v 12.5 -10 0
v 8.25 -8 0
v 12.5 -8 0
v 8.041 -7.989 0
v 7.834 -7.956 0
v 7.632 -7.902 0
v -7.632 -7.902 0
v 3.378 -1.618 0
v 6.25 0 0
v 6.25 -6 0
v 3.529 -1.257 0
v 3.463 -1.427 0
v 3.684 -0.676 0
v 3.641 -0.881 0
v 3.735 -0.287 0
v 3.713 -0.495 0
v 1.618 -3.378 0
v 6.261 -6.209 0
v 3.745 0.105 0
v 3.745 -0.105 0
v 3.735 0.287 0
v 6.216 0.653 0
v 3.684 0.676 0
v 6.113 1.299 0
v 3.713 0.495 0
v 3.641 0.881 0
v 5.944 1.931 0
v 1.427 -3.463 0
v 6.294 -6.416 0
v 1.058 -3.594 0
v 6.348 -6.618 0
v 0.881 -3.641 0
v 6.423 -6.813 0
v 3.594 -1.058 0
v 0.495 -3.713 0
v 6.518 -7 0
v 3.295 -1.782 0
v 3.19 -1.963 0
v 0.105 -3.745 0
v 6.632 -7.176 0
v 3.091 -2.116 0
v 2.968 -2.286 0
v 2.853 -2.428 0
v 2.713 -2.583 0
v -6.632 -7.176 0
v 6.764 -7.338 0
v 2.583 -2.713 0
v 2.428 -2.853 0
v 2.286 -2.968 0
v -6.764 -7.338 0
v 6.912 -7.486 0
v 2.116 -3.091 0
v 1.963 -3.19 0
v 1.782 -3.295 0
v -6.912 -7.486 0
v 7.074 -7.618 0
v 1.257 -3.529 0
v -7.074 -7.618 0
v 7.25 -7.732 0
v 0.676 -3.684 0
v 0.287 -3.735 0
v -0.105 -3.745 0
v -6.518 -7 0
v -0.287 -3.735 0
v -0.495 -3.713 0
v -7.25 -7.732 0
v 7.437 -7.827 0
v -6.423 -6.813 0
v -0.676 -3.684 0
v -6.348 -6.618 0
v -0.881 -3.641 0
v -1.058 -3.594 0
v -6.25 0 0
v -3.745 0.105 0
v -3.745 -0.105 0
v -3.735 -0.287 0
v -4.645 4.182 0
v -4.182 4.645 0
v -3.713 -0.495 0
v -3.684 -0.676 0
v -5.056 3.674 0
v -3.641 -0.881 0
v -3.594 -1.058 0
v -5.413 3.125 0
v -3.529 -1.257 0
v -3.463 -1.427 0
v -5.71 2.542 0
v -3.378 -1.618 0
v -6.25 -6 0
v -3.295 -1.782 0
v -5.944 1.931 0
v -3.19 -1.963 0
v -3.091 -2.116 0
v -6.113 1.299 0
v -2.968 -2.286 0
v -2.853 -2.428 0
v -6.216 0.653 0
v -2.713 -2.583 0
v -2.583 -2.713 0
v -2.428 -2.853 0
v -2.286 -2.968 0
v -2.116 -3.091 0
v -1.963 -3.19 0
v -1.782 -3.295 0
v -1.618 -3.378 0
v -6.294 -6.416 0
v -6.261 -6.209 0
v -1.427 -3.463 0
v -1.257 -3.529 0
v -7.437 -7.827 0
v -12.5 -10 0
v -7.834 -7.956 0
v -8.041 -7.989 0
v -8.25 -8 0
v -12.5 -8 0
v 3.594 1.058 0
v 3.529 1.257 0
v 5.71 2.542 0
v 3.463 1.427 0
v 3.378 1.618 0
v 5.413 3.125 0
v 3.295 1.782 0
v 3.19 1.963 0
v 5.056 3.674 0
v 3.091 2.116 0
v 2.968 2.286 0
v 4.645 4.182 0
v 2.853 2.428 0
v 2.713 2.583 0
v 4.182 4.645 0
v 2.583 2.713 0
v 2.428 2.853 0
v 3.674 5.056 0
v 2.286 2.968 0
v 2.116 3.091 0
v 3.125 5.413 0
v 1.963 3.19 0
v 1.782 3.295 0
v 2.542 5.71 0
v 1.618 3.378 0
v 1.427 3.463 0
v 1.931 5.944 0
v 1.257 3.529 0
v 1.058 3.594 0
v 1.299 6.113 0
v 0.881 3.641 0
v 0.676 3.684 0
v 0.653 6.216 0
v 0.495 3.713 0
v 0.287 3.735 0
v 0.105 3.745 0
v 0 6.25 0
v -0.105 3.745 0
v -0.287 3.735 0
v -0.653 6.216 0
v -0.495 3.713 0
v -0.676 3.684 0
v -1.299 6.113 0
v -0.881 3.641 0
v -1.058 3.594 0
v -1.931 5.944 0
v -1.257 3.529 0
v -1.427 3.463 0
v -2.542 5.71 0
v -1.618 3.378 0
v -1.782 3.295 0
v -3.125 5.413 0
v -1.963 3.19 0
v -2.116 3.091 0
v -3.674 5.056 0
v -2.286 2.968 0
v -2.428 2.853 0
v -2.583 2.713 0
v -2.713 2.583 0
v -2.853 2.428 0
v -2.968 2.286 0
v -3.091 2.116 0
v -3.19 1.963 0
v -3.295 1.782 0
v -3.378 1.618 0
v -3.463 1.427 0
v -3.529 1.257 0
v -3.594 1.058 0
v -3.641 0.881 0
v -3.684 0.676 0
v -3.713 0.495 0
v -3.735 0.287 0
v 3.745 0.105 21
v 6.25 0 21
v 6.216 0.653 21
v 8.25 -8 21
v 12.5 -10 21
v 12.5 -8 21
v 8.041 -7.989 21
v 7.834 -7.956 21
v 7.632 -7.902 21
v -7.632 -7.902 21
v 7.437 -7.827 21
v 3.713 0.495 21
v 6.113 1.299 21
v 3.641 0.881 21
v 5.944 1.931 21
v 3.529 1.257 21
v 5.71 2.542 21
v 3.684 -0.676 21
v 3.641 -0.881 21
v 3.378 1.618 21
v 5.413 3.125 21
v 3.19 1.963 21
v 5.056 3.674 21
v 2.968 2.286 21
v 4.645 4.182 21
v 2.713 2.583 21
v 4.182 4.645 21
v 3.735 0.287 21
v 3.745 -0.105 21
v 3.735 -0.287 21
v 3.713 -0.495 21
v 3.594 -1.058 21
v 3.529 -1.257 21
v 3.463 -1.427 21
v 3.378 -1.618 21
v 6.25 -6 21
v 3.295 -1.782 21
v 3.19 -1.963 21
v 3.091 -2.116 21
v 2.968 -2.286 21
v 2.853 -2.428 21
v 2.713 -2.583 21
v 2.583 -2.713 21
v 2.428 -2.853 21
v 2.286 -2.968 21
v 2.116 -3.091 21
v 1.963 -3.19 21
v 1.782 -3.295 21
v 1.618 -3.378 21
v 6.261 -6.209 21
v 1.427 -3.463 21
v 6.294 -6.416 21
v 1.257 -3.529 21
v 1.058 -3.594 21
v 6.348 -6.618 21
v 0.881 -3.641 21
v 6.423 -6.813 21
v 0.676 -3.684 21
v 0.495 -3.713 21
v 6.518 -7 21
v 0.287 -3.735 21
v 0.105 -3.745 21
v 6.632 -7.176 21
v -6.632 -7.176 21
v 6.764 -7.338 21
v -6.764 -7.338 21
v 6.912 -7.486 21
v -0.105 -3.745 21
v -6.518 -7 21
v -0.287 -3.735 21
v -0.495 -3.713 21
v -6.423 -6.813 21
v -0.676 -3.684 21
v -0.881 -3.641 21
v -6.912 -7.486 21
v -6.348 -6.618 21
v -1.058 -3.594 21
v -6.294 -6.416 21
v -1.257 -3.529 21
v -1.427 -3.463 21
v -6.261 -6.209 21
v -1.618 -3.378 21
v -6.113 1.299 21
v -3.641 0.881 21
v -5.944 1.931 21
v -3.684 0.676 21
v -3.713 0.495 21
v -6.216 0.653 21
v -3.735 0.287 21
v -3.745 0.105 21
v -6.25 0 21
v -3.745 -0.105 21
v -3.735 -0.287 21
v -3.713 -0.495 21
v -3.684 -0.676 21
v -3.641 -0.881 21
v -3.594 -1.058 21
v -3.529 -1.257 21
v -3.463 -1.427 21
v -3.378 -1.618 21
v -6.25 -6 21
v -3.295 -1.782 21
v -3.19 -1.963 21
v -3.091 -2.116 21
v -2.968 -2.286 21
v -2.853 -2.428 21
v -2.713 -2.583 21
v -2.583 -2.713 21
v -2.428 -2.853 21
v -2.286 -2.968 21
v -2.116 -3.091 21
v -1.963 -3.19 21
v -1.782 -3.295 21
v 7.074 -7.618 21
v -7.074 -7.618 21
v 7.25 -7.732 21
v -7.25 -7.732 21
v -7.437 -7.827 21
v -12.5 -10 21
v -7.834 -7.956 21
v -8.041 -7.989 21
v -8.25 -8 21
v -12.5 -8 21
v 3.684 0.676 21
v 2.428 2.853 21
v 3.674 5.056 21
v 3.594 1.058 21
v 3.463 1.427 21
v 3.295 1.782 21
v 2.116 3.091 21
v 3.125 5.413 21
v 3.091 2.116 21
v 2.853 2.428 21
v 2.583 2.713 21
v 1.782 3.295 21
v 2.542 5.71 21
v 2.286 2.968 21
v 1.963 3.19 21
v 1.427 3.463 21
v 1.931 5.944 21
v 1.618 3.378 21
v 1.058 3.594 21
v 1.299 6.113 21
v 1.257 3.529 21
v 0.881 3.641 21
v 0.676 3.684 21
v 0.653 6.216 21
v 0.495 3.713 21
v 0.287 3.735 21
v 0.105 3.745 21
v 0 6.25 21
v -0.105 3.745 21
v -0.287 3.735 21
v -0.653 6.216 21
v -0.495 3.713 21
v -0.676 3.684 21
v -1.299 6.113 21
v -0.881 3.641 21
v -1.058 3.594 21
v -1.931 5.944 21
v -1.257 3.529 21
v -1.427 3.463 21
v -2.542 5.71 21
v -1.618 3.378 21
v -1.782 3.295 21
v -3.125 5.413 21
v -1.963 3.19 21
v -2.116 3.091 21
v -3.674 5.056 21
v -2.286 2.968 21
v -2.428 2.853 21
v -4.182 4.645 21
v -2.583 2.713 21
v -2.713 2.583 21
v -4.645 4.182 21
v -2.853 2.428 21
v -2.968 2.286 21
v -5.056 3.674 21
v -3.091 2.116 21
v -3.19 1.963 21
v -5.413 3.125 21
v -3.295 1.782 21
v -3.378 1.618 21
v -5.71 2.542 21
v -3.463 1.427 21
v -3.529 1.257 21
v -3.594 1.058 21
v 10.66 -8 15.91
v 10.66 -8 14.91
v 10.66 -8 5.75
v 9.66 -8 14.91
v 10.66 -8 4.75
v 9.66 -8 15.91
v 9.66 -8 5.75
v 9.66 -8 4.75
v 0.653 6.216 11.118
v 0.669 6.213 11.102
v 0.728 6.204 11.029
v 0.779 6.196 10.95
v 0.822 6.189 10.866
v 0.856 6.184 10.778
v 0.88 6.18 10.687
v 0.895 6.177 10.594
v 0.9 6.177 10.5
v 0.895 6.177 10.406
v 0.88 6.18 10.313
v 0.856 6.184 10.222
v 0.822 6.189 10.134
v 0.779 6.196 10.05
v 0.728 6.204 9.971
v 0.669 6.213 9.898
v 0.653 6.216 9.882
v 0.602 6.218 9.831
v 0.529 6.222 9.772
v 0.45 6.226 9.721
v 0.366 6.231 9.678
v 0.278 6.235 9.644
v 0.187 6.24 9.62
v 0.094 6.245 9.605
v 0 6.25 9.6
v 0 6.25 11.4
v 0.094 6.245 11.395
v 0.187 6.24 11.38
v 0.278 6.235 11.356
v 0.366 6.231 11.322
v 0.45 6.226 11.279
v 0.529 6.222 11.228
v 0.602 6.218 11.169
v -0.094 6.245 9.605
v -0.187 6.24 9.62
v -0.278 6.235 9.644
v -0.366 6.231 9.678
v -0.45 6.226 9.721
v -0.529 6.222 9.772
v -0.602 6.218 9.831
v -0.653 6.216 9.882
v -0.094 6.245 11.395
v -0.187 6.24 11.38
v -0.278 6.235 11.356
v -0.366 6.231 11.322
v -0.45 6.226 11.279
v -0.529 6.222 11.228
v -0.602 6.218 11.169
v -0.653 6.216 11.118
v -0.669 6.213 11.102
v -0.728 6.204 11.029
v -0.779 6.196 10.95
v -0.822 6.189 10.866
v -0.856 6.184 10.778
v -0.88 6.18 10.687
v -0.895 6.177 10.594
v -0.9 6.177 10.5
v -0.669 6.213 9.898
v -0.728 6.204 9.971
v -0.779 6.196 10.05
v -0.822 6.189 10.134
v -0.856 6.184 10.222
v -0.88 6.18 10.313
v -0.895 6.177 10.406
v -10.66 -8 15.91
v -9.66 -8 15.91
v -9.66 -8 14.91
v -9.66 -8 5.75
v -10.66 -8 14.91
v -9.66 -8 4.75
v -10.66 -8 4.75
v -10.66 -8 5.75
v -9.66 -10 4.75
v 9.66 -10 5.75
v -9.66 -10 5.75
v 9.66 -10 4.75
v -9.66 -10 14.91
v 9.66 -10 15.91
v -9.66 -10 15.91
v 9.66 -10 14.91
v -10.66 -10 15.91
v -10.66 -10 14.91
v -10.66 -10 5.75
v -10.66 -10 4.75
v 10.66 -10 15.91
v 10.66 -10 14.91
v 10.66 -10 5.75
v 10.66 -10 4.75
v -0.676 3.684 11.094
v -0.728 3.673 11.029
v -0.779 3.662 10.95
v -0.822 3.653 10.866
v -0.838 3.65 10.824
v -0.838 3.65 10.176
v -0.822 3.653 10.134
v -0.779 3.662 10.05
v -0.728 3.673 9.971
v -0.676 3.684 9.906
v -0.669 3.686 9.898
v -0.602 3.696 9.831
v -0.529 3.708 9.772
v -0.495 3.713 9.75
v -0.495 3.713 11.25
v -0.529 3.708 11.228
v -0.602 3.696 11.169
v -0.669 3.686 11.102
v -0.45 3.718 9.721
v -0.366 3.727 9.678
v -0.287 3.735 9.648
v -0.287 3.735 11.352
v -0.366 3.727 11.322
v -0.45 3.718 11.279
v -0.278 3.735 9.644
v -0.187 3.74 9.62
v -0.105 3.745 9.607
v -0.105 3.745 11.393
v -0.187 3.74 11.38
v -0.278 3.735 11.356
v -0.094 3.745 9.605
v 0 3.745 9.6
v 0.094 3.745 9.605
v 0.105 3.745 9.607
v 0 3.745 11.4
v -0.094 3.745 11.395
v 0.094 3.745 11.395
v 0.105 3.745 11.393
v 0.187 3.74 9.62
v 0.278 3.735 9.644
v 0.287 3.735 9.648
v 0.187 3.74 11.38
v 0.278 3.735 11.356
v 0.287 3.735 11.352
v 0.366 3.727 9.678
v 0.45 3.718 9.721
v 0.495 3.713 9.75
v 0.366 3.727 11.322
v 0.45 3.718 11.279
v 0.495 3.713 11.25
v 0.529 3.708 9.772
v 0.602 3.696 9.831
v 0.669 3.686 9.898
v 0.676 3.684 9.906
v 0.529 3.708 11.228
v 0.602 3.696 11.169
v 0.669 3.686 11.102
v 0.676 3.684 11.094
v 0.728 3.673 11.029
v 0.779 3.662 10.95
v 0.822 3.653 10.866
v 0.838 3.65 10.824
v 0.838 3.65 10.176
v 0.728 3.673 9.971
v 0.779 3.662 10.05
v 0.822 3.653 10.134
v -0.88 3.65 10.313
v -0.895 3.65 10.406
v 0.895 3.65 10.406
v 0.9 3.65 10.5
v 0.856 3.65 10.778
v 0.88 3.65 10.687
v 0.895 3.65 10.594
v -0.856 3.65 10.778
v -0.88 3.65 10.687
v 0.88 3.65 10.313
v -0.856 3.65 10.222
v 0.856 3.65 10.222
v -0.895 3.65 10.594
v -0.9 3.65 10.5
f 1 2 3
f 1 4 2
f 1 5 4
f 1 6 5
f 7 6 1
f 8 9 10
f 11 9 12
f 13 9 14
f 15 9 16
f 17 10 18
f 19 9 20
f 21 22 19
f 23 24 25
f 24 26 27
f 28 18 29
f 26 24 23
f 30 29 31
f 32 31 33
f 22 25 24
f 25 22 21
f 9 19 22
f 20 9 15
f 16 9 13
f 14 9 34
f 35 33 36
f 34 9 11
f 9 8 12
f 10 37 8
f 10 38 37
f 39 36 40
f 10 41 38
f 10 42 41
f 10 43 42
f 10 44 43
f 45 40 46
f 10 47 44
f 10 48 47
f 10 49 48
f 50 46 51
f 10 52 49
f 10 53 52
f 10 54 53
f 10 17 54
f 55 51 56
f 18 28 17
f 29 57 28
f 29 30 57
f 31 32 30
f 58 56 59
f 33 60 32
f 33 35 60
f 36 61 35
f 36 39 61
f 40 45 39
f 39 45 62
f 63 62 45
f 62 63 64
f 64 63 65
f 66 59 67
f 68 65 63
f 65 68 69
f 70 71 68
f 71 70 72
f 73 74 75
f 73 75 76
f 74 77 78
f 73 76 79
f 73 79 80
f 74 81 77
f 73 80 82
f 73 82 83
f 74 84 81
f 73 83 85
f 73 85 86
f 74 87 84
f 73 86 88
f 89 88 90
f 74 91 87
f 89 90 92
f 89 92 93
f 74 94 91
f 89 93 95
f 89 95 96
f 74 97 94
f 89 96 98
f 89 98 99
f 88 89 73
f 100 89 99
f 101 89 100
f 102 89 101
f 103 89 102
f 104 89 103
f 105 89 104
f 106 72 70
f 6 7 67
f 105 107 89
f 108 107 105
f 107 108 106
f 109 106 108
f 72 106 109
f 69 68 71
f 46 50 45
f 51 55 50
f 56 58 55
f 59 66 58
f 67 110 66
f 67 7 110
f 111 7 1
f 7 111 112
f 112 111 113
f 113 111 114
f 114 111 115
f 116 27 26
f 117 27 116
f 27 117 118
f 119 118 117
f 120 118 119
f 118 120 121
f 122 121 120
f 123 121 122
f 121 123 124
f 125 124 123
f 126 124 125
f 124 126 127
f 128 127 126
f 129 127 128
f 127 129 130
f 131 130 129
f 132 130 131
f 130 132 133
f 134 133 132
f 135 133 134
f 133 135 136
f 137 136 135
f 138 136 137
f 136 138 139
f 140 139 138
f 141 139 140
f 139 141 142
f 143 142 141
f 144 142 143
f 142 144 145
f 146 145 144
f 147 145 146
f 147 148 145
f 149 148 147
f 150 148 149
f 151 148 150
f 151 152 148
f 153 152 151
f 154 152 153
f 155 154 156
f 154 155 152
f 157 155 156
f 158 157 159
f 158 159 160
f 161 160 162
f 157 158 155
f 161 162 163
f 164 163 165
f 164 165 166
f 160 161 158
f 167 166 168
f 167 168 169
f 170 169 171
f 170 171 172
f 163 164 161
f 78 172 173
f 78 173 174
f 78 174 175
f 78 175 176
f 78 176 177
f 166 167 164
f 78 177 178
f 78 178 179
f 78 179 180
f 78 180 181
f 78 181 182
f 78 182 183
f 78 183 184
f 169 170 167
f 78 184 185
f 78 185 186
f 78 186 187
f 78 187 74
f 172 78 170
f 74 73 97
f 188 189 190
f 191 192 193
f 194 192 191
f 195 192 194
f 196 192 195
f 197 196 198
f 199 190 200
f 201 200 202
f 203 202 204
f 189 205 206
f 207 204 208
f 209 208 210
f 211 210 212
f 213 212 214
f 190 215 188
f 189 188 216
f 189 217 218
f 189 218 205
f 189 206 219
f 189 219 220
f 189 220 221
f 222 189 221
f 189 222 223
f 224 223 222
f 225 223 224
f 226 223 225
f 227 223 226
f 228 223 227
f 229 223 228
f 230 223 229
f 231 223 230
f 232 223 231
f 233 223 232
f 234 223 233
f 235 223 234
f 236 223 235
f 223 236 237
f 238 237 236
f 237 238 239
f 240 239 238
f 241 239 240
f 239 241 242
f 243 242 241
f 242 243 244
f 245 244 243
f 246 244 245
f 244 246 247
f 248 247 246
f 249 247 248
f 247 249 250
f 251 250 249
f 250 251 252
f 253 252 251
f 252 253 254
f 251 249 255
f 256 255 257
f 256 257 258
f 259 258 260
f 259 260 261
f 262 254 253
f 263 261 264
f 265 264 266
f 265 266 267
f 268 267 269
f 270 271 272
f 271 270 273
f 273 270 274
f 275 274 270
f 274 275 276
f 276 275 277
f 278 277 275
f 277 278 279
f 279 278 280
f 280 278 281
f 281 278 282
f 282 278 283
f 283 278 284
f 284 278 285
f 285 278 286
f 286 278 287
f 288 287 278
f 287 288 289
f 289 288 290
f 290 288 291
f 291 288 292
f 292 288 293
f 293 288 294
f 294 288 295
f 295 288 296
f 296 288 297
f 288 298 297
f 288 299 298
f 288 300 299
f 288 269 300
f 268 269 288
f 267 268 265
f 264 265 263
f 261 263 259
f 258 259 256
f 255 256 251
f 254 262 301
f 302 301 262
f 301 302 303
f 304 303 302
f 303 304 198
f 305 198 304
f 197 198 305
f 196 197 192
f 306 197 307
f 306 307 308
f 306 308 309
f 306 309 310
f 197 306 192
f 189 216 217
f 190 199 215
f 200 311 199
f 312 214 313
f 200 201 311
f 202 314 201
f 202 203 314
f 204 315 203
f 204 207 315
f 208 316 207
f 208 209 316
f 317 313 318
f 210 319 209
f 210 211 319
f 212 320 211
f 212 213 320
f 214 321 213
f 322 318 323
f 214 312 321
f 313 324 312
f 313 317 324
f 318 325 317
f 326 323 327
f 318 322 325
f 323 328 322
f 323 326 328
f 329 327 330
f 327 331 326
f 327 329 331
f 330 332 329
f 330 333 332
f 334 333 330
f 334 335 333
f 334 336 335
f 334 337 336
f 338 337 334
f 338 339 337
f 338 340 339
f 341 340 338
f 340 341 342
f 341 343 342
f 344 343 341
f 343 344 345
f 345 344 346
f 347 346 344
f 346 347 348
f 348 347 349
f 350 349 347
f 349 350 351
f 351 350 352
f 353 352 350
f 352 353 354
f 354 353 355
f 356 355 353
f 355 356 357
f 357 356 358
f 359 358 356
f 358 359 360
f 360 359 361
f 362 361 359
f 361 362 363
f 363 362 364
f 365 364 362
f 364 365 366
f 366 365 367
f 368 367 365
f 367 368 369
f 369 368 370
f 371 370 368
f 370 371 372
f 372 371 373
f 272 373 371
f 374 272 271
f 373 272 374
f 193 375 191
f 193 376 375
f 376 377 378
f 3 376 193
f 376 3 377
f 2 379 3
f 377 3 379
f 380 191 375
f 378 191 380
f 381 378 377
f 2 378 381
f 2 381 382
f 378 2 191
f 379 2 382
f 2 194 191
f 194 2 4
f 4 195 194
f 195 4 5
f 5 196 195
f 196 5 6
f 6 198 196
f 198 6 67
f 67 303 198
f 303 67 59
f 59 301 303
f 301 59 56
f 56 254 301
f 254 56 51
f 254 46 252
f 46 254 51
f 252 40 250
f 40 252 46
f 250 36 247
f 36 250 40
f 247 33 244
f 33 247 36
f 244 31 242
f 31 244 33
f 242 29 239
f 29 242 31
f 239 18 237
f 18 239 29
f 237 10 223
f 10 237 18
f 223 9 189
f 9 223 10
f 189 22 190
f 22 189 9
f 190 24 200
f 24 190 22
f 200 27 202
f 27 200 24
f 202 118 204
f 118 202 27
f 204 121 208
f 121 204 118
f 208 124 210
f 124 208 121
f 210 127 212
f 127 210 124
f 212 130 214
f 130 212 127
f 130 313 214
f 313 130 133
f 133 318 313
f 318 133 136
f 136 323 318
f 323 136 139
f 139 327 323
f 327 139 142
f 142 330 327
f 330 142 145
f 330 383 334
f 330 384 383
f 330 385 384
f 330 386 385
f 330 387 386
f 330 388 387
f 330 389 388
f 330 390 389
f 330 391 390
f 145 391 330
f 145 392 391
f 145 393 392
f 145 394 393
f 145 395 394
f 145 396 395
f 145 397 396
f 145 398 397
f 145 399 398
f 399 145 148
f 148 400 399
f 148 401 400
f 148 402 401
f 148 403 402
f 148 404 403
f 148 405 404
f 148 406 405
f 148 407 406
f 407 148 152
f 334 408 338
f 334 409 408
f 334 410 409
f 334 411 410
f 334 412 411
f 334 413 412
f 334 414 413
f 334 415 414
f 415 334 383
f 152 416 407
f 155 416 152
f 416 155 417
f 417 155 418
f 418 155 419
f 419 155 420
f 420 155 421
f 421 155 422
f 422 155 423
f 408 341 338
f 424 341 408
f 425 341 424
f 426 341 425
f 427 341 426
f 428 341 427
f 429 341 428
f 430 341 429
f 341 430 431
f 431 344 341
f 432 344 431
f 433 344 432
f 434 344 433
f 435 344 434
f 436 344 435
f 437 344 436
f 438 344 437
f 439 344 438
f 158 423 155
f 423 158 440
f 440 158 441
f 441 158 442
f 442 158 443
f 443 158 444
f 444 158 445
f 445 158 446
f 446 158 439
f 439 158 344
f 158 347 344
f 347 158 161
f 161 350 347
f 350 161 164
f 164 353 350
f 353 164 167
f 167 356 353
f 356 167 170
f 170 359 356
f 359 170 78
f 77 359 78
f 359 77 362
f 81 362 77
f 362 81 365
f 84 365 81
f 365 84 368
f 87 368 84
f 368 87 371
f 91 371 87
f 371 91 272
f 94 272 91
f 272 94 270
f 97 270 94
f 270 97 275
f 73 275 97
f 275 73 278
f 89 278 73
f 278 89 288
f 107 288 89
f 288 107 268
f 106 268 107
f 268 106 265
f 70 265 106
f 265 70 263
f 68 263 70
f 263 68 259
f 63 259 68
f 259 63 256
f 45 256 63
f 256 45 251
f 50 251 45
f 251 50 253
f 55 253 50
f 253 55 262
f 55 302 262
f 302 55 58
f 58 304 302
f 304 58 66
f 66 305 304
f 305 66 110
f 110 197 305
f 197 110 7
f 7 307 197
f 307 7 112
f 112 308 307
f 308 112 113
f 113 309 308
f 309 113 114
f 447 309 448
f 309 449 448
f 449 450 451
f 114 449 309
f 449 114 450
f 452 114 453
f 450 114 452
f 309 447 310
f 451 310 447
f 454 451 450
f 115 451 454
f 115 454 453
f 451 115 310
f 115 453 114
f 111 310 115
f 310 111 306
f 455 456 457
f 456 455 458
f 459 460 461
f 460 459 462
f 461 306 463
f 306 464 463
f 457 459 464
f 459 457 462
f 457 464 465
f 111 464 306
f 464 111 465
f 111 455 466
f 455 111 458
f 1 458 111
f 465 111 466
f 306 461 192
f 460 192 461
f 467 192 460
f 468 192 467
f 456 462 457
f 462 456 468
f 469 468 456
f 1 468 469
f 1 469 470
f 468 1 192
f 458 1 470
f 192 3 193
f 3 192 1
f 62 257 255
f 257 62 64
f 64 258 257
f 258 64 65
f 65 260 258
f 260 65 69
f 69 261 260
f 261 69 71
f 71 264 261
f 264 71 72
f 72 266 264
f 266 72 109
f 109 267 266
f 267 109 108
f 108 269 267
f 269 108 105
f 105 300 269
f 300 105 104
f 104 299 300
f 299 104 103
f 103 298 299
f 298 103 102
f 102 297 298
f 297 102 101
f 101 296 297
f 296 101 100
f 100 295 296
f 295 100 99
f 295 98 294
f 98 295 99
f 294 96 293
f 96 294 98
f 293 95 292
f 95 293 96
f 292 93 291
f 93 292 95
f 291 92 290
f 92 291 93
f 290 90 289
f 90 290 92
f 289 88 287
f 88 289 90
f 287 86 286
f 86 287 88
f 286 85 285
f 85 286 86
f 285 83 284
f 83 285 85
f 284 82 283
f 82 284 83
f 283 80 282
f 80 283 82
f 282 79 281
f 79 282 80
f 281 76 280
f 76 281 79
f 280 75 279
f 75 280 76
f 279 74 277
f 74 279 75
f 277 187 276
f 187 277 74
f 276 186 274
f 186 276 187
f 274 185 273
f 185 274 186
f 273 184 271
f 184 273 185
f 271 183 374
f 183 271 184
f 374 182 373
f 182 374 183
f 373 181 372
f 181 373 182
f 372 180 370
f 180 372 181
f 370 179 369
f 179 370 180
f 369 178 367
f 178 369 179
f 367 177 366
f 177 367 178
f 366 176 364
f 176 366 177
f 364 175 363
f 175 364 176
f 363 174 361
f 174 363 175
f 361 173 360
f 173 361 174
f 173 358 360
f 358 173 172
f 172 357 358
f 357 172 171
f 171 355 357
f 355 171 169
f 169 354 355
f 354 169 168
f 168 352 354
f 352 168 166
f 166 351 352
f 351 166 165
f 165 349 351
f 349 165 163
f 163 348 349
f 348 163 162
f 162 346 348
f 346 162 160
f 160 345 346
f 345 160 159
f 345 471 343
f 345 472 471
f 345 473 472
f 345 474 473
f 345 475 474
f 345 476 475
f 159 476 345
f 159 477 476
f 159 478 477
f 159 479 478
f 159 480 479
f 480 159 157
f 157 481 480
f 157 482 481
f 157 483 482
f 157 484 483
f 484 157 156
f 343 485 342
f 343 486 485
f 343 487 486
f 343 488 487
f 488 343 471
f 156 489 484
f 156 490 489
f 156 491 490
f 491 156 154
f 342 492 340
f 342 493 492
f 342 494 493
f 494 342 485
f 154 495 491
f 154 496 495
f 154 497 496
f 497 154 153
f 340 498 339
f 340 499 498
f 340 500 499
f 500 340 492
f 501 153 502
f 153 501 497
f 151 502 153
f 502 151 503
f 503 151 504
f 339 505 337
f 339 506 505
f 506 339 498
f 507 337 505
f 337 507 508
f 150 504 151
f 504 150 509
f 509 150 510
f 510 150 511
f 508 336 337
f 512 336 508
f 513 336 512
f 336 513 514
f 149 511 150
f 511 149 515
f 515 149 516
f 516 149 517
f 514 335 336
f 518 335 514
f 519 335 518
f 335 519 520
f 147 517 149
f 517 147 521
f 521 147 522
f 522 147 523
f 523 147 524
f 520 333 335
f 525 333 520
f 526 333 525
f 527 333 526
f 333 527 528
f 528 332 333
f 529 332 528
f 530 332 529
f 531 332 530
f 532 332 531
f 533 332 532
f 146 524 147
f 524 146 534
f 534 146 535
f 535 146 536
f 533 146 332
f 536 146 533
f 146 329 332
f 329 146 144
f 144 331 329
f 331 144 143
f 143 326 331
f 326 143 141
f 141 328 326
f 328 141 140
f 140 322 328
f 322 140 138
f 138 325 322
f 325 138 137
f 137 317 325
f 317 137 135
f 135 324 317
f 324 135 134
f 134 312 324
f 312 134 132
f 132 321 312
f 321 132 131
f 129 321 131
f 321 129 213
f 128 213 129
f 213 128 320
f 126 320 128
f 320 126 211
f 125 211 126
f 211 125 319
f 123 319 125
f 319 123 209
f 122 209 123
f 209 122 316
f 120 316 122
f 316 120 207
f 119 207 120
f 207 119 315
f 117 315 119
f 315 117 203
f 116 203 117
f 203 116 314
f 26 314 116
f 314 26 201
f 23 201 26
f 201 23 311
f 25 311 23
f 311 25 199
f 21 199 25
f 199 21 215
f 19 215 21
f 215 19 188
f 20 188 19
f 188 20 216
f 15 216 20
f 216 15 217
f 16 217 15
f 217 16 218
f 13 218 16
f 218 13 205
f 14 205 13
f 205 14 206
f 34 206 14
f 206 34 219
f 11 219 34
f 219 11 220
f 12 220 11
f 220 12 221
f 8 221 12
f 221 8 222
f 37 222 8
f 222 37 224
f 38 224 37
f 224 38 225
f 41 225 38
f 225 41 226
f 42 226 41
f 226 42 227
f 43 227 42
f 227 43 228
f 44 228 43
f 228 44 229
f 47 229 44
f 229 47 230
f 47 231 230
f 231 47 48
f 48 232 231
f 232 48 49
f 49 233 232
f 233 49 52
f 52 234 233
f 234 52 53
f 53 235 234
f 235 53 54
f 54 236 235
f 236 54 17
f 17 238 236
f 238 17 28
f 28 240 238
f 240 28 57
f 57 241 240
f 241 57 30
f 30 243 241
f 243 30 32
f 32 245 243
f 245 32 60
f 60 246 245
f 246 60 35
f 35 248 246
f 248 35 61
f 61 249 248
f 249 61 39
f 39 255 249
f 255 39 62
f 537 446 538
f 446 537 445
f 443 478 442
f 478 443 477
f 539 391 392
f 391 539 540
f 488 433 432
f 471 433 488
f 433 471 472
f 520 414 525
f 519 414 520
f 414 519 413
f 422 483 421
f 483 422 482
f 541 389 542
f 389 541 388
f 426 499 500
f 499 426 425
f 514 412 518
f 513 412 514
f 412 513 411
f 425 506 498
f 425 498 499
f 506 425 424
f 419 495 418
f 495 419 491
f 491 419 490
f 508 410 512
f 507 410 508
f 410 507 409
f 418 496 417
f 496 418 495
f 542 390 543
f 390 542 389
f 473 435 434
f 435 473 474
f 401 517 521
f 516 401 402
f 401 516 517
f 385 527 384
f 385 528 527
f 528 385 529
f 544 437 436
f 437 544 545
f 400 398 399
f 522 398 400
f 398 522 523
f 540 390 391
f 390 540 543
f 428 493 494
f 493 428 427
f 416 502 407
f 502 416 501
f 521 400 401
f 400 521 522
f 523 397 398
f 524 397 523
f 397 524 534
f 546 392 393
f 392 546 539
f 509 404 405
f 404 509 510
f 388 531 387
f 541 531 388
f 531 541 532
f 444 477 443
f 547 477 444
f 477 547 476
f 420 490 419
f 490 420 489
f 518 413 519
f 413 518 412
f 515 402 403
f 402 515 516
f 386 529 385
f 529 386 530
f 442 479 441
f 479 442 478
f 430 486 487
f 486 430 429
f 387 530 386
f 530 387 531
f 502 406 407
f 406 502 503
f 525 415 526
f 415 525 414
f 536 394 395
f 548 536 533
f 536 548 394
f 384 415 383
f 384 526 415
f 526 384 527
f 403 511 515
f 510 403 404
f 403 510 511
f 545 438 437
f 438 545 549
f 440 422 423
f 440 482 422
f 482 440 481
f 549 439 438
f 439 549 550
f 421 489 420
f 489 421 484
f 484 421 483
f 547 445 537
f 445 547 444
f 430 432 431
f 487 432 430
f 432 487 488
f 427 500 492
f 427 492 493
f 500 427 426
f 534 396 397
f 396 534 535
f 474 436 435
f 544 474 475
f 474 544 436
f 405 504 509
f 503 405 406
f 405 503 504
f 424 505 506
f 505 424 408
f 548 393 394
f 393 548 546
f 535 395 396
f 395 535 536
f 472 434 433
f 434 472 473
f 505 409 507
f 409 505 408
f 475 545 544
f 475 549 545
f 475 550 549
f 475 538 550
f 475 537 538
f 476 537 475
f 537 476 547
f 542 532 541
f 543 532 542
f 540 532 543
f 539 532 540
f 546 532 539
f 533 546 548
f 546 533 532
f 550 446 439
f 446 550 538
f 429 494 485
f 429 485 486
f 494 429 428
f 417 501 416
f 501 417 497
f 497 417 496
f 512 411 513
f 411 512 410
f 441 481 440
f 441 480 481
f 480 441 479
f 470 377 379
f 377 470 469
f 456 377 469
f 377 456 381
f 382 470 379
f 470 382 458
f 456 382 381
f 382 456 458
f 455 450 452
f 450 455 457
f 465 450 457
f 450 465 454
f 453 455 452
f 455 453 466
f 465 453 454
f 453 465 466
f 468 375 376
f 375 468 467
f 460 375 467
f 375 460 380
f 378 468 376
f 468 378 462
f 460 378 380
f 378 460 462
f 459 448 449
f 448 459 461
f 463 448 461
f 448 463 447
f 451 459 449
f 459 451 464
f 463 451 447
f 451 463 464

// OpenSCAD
// This laser module holder can be used to attach a laser module to a
// solderless breadboard (not an optical breadboard).

laser_module_diameter = 7;
tolerance = 0.5;
laser_module_length = 21;
laser_part_thickness = 2.5;
base_thickness = 2;
set_screw_diameter = 1.8;
base_width = 25;
breadboard_spacing = 2.54;
breadboard_hole_diameter = 1;

// smoothness of circles
$fn = 60;


module laser_holder_part_2d() {
  difference() {
    // outer cylinder for thickness of laser module holder
    circle(d = laser_module_diameter + tolerance + 2*laser_part_thickness);

    // hole for laser module
    circle(d = laser_module_diameter + tolerance);
    
  }

  difference() {
    translate([-(laser_module_diameter + tolerance + 2*laser_part_thickness)/2, -10, 0]) {
      square([laser_module_diameter + tolerance + 2*laser_part_thickness, 10]);
    }
    // hole for laser module
    circle(d = laser_module_diameter + tolerance);
  }
}


module base_2d() {

  translate([-(base_width/2), -10, 0]) {
    square([base_width, base_thickness]);  
  }
}

// Fillet module taken from the OpenSCAD user manual: 
// https://en.wikibooks.org/wiki/OpenSCAD_User_Manual/Transformations#offset
module fillet(radius) {
   offset(r = -radius) {
     offset(delta = radius) {
       children();
     }
   }
}

module laser_module_holder() {
  difference() {
    difference() {
      linear_extrude(laser_module_length) {
        fillet(2) {
          laser_holder_part_2d();
          base_2d();
        }
      }

      // set screw hole
      translate([0, (laser_module_diameter + tolerance)/2 + laser_part_thickness, laser_module_length/2]) {
        rotate([90,0,0]){
          cylinder(h=laser_part_thickness + 0.1, d=set_screw_diameter, center=false);
        }
      }

    }

    // breadboard mounting holes
    translate([breadboard_spacing*4, -10 + base_thickness/2, laser_module_length/4]) {
      cube([breadboard_hole_diameter, base_thickness, breadboard_hole_diameter], center=true);
    }

    translate([-breadboard_spacing*4, -10 + base_thickness/2, laser_module_length/4]) {
      cube([breadboard_hole_diameter, base_thickness, breadboard_hole_diameter], center=true);
    }

    translate([breadboard_spacing*4, -10 + base_thickness/2, laser_module_length/4 + breadboard_spacing*4]) {
      cube([breadboard_hole_diameter, base_thickness, breadboard_hole_diameter], center=true);
    }

    translate([-breadboard_spacing*4, -10 + base_thickness/2, laser_module_length/4 + breadboard_spacing*4]) {
      cube([breadboard_hole_diameter, base_thickness, breadboard_hole_diameter], center=true);
    }
  }
}

laser_module_holder();
